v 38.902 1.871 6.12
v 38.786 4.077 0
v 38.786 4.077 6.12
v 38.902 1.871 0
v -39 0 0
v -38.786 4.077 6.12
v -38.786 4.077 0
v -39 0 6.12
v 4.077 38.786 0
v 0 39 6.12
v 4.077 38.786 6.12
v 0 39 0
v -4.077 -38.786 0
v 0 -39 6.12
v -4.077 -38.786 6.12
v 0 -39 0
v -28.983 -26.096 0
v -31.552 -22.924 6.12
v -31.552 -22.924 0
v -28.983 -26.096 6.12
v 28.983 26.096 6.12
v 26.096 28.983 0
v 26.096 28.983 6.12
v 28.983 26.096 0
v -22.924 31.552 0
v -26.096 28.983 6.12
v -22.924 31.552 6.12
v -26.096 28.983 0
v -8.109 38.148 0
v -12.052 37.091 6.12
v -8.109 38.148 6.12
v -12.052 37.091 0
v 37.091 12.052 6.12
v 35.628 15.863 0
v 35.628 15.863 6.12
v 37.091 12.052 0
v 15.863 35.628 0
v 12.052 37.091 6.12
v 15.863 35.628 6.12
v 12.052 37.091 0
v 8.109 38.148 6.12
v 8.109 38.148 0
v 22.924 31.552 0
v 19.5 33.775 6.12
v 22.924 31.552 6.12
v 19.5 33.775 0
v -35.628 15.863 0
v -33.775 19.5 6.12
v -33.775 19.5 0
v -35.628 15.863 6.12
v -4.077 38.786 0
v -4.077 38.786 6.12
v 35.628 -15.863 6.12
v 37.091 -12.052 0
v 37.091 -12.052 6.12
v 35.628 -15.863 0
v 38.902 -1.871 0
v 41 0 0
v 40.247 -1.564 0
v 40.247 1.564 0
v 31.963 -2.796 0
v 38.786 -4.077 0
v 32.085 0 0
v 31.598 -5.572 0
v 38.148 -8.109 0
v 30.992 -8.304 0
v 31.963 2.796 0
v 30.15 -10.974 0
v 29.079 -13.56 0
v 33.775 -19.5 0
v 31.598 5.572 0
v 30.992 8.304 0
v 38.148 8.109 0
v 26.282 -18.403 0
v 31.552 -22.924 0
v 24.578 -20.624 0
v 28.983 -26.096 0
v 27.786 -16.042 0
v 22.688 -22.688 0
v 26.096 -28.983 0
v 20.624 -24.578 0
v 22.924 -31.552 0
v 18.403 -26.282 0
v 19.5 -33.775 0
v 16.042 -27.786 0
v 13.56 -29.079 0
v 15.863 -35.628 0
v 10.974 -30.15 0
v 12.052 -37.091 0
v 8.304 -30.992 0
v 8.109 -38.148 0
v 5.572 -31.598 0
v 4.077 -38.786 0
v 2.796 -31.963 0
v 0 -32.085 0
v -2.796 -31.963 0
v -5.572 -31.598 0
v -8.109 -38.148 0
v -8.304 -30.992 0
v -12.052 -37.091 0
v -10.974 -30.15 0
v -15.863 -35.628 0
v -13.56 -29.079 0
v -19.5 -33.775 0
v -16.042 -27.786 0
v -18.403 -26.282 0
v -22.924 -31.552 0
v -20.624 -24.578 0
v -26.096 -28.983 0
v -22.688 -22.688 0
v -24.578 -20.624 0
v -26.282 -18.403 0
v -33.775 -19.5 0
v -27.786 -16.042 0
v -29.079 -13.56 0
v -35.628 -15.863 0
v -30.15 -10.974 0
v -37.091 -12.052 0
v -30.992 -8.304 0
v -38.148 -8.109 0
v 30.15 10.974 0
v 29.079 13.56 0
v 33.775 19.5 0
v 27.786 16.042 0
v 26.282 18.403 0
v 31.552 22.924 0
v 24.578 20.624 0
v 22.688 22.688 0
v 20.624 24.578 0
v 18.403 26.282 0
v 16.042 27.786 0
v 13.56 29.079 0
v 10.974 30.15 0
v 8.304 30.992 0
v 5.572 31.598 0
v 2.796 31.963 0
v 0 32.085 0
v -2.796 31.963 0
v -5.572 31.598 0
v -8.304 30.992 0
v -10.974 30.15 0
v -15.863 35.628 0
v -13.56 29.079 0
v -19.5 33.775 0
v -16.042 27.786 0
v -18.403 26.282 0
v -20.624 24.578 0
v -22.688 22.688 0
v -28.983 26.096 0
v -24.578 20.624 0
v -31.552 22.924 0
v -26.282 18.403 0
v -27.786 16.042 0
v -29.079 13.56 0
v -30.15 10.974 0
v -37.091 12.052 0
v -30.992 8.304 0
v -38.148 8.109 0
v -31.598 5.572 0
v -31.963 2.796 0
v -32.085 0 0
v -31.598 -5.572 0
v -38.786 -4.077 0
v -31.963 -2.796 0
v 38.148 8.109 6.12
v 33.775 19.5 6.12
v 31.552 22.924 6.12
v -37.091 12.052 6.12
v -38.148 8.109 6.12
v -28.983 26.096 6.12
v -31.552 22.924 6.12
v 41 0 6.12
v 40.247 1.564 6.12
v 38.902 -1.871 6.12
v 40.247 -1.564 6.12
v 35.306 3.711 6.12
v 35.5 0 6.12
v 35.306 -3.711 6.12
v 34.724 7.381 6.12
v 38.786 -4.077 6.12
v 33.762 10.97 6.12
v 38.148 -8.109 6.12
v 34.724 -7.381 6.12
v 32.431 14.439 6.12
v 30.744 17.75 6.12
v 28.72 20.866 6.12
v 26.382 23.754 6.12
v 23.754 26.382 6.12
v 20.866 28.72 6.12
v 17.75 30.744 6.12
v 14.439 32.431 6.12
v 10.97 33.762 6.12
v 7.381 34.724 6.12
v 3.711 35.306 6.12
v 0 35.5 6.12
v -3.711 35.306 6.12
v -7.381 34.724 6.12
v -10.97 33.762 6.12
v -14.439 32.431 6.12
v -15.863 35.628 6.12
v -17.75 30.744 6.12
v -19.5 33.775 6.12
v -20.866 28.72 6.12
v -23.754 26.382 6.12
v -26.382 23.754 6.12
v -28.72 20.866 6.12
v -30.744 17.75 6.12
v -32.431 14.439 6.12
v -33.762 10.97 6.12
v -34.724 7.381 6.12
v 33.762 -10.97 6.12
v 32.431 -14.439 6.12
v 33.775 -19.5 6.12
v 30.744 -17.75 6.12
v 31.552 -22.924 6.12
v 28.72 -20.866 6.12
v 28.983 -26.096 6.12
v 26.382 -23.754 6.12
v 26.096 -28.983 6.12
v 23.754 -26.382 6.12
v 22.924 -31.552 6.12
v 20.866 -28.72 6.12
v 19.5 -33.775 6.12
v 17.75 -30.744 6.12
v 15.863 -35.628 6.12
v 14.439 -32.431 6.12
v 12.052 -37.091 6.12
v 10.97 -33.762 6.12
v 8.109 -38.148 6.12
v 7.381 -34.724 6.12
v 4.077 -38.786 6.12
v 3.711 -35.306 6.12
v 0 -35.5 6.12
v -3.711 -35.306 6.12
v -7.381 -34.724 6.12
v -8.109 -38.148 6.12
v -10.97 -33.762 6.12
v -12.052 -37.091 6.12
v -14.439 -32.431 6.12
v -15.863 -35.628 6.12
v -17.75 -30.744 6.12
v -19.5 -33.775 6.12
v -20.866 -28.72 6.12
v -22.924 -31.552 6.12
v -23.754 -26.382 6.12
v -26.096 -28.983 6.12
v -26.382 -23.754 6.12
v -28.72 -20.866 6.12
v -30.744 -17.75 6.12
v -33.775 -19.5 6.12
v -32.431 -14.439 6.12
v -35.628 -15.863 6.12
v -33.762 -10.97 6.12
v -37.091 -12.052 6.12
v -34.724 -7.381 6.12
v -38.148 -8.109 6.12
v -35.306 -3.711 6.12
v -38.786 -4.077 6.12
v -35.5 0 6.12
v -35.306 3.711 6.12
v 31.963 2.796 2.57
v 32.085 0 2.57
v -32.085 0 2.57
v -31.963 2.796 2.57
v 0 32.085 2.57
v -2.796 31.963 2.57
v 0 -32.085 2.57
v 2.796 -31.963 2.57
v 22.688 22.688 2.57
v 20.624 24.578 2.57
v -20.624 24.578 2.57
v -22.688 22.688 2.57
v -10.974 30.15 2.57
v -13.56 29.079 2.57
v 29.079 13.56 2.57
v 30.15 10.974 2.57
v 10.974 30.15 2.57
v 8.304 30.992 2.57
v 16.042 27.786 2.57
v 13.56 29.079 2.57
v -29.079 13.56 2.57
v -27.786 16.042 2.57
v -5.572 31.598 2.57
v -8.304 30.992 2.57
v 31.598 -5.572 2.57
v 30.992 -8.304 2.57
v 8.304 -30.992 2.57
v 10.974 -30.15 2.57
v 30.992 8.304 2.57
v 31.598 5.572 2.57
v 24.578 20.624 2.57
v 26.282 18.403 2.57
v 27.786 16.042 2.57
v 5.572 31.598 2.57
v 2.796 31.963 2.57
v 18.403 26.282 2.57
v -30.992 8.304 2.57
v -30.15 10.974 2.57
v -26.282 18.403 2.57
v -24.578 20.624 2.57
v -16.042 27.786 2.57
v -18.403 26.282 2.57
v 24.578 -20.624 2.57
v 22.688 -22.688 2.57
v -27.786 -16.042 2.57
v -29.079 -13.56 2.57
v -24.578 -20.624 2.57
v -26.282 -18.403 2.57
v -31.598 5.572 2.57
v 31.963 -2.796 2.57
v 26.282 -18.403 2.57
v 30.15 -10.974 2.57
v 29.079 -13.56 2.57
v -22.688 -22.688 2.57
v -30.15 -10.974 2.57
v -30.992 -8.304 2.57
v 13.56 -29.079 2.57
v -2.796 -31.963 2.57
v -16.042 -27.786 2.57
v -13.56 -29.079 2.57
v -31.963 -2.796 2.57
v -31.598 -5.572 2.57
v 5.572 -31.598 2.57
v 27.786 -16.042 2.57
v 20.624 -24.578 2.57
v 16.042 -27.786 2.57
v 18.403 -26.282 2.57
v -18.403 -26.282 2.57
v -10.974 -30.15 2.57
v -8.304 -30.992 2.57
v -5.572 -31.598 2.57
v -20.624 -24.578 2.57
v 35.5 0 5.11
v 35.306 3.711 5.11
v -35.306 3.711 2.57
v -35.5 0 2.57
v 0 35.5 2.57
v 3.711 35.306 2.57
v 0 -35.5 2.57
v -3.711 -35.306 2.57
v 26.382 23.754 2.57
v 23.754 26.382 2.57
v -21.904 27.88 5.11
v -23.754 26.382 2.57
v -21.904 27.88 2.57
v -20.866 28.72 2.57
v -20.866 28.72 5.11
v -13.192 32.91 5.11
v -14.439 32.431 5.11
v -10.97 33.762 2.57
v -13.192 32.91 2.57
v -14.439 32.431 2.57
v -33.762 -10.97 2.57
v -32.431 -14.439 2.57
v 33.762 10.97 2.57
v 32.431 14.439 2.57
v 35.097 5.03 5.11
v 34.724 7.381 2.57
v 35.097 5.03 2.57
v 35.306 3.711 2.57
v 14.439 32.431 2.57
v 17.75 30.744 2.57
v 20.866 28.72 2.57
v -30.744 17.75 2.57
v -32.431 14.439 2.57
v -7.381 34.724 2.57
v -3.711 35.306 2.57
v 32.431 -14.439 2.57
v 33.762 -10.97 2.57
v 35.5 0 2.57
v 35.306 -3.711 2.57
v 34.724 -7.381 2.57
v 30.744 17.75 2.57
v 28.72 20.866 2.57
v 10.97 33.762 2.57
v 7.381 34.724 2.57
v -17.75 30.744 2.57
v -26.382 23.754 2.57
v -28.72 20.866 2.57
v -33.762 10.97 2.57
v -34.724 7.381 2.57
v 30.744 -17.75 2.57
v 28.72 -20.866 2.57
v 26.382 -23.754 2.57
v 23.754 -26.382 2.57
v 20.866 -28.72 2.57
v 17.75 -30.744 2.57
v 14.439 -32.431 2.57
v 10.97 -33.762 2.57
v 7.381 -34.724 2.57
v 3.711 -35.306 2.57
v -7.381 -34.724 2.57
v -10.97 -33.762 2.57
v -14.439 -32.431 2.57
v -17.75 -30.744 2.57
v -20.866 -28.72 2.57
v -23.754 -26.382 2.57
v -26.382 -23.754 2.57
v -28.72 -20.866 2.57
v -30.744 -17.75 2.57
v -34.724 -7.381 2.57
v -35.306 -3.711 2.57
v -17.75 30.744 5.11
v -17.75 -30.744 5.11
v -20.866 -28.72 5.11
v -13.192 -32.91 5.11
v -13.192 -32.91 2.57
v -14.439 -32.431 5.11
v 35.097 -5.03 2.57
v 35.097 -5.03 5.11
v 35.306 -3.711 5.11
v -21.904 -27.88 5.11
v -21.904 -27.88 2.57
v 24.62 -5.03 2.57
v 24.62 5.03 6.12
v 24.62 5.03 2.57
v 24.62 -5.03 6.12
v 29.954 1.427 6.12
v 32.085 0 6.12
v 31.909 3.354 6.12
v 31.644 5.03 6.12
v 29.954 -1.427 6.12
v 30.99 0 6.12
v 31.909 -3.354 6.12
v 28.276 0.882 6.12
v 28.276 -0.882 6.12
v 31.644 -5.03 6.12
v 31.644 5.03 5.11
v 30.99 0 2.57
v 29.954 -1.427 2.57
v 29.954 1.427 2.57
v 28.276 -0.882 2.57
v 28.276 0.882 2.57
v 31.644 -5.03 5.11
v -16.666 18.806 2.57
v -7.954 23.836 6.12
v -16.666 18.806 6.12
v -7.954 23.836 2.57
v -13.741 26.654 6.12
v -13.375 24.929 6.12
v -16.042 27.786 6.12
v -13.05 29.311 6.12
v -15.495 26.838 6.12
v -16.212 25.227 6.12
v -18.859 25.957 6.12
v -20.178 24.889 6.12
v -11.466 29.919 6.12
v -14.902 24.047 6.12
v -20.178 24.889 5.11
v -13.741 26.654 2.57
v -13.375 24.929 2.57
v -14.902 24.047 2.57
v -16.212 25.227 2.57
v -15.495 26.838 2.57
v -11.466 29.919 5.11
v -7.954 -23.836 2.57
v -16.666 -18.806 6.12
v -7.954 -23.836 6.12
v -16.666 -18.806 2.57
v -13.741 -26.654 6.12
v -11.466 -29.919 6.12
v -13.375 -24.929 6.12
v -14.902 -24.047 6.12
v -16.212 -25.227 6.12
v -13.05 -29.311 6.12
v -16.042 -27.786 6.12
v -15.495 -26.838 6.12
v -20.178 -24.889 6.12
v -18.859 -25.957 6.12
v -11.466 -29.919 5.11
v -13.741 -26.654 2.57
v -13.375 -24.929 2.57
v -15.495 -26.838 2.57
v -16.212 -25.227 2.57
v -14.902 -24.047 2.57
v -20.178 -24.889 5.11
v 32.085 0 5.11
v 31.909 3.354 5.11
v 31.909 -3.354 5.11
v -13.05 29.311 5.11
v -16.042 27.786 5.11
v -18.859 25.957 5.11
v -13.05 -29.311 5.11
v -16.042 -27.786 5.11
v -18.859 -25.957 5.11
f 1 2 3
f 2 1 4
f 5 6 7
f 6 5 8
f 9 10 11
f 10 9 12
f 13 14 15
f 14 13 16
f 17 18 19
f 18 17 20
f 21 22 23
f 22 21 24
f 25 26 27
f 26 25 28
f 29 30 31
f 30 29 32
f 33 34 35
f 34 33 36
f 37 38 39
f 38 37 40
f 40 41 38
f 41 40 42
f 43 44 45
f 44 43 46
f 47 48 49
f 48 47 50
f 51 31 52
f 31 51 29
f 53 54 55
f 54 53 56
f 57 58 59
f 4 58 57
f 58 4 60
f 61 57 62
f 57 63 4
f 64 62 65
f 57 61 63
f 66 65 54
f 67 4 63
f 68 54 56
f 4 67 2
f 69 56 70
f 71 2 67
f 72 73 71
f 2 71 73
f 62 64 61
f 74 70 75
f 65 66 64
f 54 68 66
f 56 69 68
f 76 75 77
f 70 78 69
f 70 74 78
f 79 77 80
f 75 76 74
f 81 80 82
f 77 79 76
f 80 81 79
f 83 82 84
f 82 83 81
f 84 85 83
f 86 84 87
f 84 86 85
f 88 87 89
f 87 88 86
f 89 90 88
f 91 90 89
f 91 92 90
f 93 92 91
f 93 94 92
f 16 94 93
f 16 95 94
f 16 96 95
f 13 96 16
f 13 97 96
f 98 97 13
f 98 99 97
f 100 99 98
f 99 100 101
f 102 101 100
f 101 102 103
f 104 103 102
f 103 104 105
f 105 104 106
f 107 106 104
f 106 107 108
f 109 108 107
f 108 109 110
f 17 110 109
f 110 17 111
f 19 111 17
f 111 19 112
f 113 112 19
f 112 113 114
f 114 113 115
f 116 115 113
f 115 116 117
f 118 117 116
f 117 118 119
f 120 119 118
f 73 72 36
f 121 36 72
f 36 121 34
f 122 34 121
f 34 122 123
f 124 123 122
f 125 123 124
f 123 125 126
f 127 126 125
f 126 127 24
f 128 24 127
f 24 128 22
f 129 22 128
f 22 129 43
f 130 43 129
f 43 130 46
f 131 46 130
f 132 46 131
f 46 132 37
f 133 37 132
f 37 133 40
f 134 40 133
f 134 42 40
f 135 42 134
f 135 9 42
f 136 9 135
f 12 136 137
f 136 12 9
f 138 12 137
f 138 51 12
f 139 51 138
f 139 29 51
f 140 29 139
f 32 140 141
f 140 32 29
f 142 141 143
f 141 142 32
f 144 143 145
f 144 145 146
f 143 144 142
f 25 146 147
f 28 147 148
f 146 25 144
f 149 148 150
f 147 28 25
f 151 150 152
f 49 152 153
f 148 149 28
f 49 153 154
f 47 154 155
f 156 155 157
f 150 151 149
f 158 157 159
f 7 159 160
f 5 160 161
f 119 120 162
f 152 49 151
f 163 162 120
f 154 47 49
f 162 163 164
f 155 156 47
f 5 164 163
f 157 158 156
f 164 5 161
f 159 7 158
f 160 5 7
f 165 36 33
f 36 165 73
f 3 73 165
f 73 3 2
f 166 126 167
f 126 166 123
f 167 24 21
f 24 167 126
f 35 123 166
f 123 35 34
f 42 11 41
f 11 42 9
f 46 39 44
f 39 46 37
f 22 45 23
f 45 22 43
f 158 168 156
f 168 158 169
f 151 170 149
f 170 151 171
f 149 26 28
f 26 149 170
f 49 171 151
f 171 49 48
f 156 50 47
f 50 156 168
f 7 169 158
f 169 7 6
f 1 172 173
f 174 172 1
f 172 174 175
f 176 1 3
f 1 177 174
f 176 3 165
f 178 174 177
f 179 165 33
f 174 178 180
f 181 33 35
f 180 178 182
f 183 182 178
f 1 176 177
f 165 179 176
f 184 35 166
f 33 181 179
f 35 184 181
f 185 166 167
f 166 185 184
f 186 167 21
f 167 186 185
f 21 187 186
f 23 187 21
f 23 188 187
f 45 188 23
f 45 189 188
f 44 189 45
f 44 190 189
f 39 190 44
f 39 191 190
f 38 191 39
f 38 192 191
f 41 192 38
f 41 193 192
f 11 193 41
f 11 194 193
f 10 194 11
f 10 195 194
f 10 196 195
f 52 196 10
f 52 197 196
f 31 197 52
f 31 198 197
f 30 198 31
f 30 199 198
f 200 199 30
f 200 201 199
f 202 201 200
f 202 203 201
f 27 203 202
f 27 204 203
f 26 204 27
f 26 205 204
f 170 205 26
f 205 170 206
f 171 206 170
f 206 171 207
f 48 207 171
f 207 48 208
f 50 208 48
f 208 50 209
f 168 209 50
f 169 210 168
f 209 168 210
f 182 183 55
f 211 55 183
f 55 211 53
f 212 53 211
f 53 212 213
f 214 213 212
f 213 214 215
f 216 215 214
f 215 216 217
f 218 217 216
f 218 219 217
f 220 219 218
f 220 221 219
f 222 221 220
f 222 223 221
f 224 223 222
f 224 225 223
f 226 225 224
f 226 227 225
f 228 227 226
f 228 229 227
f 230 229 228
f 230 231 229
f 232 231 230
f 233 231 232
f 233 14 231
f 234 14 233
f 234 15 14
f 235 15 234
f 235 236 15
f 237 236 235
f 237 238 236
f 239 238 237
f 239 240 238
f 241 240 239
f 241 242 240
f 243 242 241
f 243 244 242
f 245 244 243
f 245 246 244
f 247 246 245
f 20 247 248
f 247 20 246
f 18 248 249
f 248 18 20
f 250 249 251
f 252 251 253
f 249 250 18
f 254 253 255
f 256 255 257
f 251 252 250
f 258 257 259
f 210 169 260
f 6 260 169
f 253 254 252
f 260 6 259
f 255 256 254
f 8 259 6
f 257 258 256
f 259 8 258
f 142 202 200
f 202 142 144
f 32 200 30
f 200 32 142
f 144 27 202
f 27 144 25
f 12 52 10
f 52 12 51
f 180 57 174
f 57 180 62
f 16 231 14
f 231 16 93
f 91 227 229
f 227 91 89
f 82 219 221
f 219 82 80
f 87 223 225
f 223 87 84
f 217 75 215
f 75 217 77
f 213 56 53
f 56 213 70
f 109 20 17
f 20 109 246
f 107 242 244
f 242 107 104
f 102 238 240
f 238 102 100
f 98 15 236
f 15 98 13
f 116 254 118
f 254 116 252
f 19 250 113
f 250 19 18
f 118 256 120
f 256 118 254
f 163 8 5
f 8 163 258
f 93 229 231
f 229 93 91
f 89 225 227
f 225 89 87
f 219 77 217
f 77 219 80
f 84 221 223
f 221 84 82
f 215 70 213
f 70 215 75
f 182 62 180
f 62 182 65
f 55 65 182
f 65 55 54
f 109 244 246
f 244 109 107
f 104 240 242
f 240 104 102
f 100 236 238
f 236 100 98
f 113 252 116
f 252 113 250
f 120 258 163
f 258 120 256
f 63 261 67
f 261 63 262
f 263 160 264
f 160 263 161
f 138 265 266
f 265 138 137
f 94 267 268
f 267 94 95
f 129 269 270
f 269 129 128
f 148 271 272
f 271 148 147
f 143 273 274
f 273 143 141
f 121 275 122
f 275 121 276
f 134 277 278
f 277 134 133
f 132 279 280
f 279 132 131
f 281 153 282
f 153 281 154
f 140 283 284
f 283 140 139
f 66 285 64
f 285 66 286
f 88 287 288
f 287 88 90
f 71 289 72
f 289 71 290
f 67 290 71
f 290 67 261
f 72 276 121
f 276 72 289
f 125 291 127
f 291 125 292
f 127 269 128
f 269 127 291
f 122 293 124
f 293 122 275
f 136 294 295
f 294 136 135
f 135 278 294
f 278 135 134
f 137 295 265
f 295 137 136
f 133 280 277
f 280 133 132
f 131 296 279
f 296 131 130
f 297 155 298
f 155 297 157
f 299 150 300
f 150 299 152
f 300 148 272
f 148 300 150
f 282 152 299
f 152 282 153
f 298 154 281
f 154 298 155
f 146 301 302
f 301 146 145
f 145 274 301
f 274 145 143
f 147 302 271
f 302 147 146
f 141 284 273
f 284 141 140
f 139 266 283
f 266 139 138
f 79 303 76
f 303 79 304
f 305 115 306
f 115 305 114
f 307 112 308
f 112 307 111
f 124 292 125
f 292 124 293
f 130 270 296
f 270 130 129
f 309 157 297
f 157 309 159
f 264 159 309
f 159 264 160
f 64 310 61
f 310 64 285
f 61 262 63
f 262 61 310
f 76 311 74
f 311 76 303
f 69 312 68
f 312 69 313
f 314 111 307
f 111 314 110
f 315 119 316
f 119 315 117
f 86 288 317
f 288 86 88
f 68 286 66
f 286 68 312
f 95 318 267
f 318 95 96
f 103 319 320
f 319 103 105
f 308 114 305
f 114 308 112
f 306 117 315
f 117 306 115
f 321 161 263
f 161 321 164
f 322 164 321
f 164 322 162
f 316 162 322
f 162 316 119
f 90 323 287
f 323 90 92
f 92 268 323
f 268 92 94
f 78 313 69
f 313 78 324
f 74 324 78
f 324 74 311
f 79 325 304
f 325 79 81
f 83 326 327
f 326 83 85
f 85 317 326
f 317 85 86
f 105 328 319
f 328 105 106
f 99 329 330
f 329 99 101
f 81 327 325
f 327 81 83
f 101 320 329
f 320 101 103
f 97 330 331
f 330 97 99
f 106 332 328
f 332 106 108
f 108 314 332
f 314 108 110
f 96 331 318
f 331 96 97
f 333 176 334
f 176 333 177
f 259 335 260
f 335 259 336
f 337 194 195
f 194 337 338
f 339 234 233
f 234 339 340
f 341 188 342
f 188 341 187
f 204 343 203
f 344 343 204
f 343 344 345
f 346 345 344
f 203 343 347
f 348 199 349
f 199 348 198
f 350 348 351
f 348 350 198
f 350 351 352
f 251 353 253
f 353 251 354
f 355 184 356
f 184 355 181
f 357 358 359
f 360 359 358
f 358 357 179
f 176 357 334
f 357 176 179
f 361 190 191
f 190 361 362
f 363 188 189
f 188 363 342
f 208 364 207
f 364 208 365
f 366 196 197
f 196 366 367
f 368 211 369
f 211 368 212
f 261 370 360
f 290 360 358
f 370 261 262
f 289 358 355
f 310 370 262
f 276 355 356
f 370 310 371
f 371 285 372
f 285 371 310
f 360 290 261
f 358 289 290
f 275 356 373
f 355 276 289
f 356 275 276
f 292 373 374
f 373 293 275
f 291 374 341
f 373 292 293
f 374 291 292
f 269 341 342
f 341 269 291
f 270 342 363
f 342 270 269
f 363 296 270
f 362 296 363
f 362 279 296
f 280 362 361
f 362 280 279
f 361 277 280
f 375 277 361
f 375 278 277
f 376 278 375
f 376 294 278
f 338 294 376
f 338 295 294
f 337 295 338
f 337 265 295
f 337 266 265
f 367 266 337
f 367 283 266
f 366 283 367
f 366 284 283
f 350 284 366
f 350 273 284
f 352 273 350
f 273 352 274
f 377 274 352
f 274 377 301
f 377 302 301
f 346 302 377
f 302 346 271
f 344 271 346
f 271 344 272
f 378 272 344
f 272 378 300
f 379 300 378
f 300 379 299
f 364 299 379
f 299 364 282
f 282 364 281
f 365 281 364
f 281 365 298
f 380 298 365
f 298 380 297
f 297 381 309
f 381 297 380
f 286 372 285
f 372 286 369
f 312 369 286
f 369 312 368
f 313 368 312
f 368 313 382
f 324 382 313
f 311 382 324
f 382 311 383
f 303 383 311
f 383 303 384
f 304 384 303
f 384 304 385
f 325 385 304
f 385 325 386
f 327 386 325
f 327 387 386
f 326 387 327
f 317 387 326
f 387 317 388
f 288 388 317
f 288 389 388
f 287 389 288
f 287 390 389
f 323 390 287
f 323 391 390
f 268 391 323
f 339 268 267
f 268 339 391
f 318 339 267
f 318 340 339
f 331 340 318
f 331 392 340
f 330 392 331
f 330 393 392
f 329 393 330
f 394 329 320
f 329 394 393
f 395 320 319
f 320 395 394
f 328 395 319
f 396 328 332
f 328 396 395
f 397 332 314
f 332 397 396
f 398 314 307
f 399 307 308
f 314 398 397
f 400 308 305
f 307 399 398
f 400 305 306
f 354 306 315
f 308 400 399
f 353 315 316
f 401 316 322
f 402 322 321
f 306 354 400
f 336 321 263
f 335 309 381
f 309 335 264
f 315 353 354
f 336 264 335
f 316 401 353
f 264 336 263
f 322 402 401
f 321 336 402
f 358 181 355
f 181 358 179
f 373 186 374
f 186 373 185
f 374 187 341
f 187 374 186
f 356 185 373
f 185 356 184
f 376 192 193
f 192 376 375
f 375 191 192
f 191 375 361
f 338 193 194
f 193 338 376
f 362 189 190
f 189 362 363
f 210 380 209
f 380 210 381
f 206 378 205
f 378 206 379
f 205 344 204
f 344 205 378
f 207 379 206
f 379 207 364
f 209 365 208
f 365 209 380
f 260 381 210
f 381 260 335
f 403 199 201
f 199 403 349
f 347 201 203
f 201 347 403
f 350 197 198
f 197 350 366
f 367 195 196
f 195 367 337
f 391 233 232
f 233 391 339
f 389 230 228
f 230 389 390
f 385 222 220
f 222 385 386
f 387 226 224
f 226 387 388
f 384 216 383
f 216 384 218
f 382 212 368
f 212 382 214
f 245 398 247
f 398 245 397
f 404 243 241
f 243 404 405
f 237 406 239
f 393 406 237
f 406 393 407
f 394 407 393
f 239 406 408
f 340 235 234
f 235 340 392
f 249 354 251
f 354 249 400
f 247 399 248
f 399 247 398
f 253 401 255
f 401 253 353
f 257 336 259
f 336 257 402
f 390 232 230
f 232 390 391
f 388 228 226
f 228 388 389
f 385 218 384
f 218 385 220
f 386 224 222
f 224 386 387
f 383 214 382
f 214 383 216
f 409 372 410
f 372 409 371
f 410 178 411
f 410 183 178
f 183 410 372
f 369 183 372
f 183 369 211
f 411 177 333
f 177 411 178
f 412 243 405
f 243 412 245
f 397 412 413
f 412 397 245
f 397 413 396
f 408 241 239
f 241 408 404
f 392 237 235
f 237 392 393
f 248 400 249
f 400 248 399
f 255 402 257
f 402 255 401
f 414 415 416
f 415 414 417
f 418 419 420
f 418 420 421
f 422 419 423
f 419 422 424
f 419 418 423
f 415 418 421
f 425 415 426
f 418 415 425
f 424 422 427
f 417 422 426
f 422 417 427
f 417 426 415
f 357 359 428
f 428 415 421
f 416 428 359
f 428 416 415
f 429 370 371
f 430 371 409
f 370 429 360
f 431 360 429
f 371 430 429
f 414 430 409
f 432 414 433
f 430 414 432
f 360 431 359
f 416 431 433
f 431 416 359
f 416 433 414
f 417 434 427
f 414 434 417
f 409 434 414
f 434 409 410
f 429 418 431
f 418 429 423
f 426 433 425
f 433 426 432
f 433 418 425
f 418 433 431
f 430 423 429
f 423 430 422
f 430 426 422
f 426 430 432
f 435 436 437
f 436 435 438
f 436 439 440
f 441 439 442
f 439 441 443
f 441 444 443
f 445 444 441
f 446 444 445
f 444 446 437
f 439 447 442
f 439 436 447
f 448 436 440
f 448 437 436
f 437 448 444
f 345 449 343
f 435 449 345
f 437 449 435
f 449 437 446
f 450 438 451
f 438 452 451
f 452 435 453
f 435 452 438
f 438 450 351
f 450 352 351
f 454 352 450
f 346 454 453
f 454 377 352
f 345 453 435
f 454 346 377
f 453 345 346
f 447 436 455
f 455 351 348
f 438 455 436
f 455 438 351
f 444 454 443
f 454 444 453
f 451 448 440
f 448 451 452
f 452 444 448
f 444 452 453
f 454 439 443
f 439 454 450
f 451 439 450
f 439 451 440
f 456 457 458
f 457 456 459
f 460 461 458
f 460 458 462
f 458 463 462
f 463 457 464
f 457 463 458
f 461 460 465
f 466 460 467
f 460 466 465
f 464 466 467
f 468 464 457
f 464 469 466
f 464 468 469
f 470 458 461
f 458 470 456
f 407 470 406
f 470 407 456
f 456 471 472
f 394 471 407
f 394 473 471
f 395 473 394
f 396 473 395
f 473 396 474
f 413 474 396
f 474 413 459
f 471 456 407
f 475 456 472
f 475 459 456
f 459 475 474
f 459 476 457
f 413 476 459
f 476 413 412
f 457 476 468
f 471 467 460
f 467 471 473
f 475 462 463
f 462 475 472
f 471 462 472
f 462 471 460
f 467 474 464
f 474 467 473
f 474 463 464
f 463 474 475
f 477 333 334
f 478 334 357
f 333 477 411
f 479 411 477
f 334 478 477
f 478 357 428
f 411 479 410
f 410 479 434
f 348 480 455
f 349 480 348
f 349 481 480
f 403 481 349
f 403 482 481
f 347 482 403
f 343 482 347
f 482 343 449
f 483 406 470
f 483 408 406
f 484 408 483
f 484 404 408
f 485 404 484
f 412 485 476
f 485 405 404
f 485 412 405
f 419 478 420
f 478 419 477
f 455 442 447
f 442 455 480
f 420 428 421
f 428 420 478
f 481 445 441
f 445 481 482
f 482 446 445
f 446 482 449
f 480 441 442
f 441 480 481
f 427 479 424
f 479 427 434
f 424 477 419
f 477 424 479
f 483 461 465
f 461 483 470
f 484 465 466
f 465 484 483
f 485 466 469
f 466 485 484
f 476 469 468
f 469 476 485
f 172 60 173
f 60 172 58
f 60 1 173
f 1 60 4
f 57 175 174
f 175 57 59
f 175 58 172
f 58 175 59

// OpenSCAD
// Massager head retention ring
// First 3D print issues
//     Ring
//         xNot enough angles in ring edges
//     Tabs
//         xDo not align with outside of 37mm ring
//         xPenetrate too far into center of ring
//         xScrew holes too large
//         xNeed notch on ring side

//Cylinder
//Outer dimension 74mm
//Ring edge = 37mm
    ring_edge = 37;
//Middle dimension 71mm
//  radius 35.5mm
//Inner dimension 64.17mm
//  radius 32.085
//Thickness of inner ring edge 2.57mm
    inner_ring_edge = 2.57;
//Thickness of rim 6.12mm
    rim_thickness = 6.12;
//Thickness of tab 6.12mm - 2.57mm = 3.55mm

//Tabs X3
//Outer to inner 12.38mm
    tab_x = 12.38;
//Width 10.06mm
    tab_y = 10.06;
//Thickness = 3.55mm
    tab_z = 3.55;
//Tab 120 degrees apart
    tab_rotate = 120;
//Center hole 7.51mm
    tab_hole_x = tab_x - 7.51;
    tab_hole_y = tab_y/2;
//Screw hole diameter 1.5mm
    screw = 1.5;

//Reference ridge
translate([ring_edge+2,0,0])
    cylinder(h=rim_thickness,r=2,center=false);
    
//cylinder(h = height, r1 = BottomRadius, r2 = TopRadius, center = true/false);
//Ring
difference(){
    cylinder(h=rim_thickness, r=ring_edge+2, $fa=6, center=false); 
    cylinder(h=7, r=32.085, $fa=5, center=false);
    //translate(v = [x, y, z]) 
    translate([0,0,2.57])
        cylinder(h=4,r=35.5, $fa=6, center=false);
}

difference(){
    union(){
        //First tab +x
            DrawTab(ring_edge-tab_x,tab_y/2 * -1,inner_ring_edge,0,0,0,0);

        //Second tab -x +y
            DrawTab(cos(60)*ring_edge*-1,sin(60)*37,
        inner_ring_edge,tab_x*-1,tab_y/2*-1,0,1);
    
        //Third tab -x -y
            DrawTab(cos(60)*ring_edge*-1,sin(60)*ring_edge*-1,
            inner_ring_edge,tab_x*-1,tab_y/2*-1,0,2);
    }
    translate([0,0,5.11])
        difference(){
            cylinder(h=6, r=35.5, $fa=6, center=false);
            cylinder(h=6, r=32.085, $fa=6, center=false);
        }
}

module DrawTab(s_x,s_y,s_z,t_x,t_y,t_z,r){
    //s_x - starting x point for cube before rotation and re-orientation
    //s_y - starting y point for cube before rotation and re-orientation
    //s_z - starting z point for cube before rotation and re-orientation
    //t_x - after rotation translated starting x point for cube
    //t_y - after rotation translated starting y point for cube
    //t_z - after rotation translated starting z point for cube
    //r   - rotation multiplier
    translate([s_x,s_y,s_z])
    rotate(120*r){
        translate([t_x,t_y,t_z])
            difference(){
                cube([tab_x,tab_y,tab_z],center=false);
                translate([tab_hole_x,tab_hole_y,0])
                    cylinder(h=tab_z, r=screw,center = false);
            }
        }    
}
